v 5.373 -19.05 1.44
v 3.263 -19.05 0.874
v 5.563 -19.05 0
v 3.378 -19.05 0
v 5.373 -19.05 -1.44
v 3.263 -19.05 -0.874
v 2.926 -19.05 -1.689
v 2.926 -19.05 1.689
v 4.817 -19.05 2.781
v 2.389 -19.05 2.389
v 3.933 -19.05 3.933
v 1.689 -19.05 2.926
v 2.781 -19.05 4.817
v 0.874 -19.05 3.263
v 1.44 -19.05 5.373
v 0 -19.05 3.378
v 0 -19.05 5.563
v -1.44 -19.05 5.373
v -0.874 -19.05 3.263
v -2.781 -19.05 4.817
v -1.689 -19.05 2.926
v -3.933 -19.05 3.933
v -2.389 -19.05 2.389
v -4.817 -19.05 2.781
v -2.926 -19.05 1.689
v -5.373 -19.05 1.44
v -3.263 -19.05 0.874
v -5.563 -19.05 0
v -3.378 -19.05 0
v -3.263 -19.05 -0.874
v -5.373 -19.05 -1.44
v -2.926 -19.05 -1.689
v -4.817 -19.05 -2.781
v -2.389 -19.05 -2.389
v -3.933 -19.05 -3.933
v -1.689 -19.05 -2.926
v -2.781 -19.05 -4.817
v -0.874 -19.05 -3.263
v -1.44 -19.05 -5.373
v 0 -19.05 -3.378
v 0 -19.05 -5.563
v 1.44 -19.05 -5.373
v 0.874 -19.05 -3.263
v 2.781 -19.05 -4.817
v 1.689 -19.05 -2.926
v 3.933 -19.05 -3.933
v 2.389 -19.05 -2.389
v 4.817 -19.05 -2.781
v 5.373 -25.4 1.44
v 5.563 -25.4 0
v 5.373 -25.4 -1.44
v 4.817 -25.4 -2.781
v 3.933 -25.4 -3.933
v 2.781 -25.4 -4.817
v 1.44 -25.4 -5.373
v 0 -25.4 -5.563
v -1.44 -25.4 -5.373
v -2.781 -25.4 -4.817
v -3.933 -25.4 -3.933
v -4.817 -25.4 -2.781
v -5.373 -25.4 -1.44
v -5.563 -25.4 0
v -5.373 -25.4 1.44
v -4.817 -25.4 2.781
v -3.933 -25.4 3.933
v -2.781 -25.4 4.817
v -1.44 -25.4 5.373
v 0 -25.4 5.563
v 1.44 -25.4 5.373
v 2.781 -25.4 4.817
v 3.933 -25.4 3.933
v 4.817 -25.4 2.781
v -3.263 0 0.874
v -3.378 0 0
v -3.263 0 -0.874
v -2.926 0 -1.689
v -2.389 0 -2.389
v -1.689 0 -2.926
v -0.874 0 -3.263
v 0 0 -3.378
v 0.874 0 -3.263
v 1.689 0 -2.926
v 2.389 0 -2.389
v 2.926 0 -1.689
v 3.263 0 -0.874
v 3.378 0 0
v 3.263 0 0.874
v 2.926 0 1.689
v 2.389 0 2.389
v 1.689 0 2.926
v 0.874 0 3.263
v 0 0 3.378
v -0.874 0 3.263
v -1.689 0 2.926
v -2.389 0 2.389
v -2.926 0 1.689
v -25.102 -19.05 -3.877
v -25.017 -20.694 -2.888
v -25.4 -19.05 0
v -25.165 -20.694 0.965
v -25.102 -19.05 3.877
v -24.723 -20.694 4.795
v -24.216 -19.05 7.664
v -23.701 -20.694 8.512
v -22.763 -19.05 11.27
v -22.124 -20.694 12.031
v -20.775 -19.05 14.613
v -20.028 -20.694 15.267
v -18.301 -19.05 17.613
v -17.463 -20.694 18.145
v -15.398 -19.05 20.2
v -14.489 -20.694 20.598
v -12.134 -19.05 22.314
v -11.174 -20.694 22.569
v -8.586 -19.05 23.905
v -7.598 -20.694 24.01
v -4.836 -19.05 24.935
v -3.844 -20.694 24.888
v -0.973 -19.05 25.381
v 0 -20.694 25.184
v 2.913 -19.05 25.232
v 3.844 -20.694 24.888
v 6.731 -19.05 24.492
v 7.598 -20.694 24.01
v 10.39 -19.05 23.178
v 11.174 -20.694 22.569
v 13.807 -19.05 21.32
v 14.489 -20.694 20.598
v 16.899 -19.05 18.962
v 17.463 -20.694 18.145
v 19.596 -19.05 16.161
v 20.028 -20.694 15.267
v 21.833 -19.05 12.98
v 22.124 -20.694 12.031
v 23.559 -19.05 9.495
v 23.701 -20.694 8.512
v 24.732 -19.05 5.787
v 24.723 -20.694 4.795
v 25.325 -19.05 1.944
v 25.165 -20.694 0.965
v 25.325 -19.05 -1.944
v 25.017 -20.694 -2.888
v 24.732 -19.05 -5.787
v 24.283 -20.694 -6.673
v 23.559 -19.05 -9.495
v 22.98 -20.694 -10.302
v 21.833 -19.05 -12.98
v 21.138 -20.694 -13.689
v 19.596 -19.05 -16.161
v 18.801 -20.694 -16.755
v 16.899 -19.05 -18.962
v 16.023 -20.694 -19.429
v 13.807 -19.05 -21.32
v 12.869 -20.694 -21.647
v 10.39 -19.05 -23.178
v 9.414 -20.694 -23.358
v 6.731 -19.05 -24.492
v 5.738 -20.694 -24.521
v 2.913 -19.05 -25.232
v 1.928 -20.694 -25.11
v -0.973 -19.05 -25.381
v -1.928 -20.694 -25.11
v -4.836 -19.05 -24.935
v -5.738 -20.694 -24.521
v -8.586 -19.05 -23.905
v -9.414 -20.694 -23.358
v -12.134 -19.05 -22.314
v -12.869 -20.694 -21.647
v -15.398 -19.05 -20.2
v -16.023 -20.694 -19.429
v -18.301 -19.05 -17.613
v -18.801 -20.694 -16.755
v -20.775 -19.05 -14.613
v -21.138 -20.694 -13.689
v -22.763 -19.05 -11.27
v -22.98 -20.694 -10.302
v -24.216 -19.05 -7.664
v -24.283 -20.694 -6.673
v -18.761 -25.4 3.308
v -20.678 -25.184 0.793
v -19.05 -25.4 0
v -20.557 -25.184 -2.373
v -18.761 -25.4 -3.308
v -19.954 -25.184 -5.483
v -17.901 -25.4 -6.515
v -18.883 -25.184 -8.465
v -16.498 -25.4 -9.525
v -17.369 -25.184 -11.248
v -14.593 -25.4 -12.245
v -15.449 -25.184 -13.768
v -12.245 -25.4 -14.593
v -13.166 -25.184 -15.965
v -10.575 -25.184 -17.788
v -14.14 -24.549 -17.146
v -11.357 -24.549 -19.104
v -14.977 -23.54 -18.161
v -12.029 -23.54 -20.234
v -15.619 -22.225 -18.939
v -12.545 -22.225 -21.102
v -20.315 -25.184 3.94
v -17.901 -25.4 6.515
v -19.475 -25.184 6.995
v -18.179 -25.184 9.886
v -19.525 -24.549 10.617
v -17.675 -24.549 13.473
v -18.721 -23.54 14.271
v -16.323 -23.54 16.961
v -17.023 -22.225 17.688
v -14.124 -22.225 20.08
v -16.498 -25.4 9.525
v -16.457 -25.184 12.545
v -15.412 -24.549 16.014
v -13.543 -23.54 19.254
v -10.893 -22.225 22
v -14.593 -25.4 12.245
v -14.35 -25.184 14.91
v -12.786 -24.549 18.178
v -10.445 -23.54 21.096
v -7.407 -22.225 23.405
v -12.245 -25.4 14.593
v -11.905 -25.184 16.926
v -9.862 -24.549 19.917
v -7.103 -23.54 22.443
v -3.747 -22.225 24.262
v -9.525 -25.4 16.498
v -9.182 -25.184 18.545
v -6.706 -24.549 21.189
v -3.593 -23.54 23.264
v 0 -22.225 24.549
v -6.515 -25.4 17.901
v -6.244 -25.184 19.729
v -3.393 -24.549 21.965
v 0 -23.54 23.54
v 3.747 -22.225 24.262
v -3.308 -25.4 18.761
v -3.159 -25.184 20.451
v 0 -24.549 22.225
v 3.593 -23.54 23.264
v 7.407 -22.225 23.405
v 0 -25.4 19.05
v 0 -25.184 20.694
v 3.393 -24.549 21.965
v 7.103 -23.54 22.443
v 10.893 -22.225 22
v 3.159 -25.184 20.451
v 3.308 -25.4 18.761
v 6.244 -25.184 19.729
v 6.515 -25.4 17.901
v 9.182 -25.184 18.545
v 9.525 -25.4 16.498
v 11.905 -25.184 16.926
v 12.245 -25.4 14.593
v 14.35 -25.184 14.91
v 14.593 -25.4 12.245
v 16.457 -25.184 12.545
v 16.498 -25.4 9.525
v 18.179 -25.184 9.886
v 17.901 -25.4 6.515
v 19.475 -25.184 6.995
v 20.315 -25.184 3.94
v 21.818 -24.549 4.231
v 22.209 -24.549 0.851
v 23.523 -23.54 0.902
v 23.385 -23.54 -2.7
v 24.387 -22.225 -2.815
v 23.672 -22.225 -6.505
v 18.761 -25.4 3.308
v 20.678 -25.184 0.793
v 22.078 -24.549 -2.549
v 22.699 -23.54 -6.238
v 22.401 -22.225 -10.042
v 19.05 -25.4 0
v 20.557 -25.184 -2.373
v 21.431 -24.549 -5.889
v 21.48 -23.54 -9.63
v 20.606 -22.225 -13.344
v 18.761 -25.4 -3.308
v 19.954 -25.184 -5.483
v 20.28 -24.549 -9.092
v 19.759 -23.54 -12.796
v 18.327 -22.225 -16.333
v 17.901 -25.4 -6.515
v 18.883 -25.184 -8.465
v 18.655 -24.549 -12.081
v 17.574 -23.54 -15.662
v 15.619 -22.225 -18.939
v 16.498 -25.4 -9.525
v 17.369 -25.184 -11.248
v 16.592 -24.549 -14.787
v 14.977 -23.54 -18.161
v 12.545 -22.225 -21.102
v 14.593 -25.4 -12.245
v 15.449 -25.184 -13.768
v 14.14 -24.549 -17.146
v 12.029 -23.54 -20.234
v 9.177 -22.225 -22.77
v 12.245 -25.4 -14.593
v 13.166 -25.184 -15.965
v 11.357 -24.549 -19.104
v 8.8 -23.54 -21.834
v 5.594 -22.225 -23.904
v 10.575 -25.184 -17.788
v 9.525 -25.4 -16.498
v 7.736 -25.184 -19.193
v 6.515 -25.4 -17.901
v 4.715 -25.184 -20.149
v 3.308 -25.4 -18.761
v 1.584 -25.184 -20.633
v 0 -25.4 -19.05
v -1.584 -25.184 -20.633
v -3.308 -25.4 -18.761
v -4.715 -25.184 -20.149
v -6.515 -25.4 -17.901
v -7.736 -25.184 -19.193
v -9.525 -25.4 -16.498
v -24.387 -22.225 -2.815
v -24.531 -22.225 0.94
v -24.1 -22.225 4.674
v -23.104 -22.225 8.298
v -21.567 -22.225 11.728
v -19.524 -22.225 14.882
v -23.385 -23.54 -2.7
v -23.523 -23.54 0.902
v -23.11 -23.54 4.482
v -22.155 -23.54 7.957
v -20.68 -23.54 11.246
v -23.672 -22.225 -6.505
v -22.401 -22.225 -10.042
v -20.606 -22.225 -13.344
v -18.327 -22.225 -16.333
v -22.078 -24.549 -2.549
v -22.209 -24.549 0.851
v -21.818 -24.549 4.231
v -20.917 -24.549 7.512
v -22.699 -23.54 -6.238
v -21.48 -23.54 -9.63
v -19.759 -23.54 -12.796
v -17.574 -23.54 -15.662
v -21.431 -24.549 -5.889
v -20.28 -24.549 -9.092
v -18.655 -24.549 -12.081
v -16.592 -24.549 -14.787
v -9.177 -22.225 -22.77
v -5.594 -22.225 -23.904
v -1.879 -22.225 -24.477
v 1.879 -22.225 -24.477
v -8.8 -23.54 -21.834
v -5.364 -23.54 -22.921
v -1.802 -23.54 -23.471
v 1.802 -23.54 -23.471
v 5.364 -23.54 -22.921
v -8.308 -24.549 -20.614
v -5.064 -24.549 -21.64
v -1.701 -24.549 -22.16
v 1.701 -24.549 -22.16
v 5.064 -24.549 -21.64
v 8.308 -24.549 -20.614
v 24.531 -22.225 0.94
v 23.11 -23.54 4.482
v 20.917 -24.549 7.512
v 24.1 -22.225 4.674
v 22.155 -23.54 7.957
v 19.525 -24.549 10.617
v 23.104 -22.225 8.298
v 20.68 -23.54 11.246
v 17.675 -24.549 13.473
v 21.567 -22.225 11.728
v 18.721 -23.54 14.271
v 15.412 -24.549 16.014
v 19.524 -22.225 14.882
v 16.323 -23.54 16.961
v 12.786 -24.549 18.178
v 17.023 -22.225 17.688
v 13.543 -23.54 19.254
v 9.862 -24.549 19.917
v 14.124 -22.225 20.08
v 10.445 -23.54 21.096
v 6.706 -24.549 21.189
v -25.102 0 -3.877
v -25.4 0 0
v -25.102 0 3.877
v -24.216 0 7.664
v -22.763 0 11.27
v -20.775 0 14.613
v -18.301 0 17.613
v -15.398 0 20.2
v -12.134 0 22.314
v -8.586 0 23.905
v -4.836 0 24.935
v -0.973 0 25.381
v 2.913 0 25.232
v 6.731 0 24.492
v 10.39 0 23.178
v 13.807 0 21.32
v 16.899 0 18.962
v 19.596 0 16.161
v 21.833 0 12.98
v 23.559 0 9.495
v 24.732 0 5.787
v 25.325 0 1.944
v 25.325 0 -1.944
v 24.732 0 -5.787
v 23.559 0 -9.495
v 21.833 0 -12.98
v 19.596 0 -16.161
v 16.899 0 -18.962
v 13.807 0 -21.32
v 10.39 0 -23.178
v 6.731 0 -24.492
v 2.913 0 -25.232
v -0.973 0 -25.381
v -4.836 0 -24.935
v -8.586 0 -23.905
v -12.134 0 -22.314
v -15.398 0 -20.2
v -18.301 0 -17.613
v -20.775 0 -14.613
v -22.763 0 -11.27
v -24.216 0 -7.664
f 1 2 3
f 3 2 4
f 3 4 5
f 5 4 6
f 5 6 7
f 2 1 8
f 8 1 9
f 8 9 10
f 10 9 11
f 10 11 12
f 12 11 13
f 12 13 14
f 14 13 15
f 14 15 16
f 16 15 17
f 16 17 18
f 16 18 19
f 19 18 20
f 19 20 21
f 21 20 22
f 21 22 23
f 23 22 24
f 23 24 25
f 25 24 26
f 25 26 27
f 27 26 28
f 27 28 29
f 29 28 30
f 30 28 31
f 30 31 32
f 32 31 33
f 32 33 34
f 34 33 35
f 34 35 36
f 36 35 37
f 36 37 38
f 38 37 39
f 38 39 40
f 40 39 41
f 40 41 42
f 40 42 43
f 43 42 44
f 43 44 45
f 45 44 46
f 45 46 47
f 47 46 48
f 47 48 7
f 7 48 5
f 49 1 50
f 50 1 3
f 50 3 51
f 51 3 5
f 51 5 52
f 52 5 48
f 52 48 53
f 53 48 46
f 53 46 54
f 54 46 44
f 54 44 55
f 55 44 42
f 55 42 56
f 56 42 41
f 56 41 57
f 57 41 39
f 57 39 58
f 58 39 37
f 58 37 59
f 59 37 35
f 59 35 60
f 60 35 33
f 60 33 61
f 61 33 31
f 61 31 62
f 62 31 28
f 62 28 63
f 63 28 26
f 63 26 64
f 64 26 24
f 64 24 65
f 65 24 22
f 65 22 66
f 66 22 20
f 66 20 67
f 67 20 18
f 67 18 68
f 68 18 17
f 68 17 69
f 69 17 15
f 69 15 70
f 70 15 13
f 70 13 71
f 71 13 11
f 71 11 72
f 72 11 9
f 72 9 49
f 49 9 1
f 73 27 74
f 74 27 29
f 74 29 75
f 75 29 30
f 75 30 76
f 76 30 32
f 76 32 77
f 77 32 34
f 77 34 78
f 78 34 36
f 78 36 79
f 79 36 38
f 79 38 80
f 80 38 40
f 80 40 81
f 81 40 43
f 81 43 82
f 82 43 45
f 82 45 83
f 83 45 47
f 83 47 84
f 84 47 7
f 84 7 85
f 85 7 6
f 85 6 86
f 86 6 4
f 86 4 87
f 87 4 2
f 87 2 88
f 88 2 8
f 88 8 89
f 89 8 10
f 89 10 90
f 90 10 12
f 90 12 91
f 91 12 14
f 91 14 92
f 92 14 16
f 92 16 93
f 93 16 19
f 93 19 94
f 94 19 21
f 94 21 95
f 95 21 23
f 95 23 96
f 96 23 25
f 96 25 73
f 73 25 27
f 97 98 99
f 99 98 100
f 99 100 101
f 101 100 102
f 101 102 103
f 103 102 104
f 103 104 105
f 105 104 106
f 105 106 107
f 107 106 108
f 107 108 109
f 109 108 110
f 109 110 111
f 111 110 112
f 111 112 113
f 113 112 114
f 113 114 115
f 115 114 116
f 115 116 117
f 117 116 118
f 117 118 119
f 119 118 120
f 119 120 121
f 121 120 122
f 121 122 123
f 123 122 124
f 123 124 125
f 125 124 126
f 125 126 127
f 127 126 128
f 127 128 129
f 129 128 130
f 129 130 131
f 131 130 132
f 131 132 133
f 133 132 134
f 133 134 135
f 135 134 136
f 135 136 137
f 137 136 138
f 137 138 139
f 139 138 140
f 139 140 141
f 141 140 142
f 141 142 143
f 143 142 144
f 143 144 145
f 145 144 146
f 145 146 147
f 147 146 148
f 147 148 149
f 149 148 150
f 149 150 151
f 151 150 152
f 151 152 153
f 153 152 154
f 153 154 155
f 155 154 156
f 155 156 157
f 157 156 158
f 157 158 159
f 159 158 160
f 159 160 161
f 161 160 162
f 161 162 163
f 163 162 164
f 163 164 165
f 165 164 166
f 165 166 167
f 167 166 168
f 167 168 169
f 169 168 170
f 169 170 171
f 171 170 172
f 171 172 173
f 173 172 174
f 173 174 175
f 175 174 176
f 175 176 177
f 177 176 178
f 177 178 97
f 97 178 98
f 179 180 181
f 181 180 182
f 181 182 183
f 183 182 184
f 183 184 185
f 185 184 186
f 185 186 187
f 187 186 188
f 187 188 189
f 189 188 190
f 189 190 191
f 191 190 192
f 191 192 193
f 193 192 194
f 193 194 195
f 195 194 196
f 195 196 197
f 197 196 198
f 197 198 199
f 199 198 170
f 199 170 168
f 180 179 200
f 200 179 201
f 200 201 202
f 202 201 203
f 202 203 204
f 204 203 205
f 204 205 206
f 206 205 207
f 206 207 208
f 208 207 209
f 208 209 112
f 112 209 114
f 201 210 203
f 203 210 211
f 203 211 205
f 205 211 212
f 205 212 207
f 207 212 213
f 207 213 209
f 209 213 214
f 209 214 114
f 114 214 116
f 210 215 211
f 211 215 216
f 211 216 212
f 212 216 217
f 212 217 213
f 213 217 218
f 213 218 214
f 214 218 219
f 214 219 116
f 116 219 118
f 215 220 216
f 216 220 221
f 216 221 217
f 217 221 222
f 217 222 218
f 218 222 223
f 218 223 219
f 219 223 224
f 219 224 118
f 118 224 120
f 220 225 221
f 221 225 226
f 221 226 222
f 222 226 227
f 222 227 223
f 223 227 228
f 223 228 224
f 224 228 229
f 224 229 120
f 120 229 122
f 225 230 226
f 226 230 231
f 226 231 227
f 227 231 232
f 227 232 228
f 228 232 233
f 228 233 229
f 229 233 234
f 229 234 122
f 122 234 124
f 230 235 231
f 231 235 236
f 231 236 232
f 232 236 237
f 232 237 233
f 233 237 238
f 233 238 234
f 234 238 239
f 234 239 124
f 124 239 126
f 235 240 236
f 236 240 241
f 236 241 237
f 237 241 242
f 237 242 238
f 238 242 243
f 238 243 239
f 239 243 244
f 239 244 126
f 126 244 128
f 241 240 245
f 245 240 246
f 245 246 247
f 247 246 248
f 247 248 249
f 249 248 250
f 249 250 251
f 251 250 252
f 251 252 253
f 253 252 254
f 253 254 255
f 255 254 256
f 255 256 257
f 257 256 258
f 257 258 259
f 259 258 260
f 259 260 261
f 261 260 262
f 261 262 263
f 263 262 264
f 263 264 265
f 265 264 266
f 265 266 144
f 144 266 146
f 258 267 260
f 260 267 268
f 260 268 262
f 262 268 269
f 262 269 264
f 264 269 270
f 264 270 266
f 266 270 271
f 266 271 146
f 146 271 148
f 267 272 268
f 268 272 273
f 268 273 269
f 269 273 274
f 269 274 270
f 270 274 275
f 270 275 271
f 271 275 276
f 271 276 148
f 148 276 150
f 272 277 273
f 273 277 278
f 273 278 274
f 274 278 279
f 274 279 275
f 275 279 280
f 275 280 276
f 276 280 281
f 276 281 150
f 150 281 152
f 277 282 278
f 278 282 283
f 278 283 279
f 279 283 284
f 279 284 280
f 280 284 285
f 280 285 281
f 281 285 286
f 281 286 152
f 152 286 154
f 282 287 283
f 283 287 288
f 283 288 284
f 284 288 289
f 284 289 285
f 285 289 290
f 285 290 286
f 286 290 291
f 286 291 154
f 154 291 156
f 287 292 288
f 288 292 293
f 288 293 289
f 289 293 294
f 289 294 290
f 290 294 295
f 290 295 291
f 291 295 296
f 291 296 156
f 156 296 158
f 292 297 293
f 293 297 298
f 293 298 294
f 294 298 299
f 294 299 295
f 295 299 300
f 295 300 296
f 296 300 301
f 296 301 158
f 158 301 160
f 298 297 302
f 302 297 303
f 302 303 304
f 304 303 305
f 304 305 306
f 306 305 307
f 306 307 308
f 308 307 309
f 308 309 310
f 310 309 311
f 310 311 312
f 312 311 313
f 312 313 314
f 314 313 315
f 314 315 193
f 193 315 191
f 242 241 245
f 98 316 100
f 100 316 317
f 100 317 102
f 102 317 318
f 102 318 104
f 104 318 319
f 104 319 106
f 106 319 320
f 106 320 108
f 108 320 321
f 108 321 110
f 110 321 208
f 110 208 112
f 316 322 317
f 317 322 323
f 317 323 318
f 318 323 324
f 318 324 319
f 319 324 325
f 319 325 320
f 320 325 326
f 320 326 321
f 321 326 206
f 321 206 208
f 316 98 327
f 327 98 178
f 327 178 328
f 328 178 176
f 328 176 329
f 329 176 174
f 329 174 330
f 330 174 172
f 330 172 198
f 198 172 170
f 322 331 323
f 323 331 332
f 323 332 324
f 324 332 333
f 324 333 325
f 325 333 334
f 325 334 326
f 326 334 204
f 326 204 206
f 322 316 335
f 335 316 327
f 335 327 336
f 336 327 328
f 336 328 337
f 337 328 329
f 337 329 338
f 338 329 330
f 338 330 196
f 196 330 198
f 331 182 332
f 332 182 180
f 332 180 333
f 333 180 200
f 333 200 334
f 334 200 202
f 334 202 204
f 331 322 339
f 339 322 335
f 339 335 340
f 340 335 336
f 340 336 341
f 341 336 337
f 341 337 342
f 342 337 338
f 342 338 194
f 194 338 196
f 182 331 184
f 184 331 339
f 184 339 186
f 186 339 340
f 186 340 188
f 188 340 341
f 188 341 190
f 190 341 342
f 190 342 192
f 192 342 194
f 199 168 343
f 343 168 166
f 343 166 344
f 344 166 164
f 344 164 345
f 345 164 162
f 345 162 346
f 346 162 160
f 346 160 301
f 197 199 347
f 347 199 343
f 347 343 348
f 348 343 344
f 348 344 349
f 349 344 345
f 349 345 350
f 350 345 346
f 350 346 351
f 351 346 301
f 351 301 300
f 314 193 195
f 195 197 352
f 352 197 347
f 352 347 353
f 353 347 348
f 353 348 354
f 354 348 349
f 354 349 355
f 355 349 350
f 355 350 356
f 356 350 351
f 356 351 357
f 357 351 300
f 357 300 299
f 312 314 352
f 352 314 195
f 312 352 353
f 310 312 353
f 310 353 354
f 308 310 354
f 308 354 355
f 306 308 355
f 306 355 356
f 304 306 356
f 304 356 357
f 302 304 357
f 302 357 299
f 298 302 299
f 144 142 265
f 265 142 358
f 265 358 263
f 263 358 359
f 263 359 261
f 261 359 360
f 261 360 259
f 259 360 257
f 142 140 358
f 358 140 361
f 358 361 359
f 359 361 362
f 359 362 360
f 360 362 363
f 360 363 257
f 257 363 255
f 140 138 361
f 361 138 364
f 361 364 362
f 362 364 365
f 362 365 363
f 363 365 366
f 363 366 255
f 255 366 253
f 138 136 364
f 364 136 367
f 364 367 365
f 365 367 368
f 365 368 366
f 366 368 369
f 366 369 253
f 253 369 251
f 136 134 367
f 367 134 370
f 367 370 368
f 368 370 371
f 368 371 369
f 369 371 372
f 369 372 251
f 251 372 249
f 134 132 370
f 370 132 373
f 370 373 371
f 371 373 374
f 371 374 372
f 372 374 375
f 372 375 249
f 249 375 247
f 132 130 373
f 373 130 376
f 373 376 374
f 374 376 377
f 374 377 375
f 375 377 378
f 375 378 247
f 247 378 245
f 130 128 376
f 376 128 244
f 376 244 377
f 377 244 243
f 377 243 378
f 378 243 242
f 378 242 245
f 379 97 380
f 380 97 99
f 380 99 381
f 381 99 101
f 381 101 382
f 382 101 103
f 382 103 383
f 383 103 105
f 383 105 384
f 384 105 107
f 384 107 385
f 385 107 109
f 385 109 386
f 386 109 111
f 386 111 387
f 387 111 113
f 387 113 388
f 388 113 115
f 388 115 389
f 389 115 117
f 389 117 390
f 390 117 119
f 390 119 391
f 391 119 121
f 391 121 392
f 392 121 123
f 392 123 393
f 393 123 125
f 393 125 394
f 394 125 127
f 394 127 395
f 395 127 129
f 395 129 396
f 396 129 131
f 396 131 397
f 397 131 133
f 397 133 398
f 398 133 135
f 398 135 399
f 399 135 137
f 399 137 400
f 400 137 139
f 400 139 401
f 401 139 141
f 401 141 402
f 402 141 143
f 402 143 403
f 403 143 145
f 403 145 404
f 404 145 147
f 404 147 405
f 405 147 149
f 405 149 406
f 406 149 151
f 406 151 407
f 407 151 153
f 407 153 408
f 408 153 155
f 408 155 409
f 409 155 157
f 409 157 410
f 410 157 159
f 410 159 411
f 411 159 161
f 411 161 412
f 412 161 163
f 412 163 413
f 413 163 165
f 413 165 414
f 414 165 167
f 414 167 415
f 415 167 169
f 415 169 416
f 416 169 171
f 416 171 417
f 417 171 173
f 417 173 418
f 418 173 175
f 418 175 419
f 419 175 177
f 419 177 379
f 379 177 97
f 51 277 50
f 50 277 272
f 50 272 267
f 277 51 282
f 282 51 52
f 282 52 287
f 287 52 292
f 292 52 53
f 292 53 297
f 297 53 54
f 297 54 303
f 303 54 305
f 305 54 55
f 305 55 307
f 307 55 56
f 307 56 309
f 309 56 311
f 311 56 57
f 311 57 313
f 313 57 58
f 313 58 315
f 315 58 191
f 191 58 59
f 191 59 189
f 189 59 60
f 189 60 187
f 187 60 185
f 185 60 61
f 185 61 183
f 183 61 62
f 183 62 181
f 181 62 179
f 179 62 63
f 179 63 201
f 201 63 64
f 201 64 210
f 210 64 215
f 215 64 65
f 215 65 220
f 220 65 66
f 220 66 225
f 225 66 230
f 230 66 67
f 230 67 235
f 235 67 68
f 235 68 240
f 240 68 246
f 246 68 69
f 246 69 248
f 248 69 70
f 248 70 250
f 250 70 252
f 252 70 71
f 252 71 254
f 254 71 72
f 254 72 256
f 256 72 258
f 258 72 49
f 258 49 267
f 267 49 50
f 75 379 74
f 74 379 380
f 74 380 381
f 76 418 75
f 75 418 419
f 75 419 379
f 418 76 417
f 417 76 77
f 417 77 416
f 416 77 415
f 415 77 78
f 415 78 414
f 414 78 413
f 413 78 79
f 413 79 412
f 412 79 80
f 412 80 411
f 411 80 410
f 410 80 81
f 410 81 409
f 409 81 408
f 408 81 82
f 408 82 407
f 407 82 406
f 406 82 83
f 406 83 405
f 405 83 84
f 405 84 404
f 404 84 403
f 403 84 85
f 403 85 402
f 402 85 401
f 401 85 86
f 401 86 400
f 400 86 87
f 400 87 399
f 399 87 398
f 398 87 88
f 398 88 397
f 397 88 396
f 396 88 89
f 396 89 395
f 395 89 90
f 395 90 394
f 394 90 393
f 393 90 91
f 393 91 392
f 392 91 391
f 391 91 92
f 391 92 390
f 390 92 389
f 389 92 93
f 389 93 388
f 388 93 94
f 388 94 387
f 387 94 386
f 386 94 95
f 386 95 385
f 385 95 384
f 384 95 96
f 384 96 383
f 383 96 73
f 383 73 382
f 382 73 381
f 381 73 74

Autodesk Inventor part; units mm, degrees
ref_plane "YZ Plane" through (0, 0, 0) normal (1, 0, 0) x (0, 1, 0)
ref_plane "XZ Plane" through (0, 0, 0) normal (0, 1, 0) x (-1, 0, 0)
ref_plane "XY Plane" through (0, 0, 0) normal (0, 0, 1) x (1, 0, 0)
sketch "Sketch1" plane through (0, 0, 0) normal (0, 1, 0) x (-1, 0, 0)
  circle A0 centre (0, 0) radius 25.4
  dimension "d0" = 50.8
extrude "Extrusion1" add sketch "Sketch1" against normal blind 25.4
fillet "Fillet1" radius 6.35 1 edges at (25.4, -25.4, 0)
hole "Hole1" at (0, -25.4, 0) direction (0, 1, 0) diameter 6.7564 end through all counterbore diameter 11.1252 counterbore depth 6.35 clearance for "Socket Head Cap Screw" size "1/4" standard "Ansi Unified Screw Threads"
properties part number "foot"
